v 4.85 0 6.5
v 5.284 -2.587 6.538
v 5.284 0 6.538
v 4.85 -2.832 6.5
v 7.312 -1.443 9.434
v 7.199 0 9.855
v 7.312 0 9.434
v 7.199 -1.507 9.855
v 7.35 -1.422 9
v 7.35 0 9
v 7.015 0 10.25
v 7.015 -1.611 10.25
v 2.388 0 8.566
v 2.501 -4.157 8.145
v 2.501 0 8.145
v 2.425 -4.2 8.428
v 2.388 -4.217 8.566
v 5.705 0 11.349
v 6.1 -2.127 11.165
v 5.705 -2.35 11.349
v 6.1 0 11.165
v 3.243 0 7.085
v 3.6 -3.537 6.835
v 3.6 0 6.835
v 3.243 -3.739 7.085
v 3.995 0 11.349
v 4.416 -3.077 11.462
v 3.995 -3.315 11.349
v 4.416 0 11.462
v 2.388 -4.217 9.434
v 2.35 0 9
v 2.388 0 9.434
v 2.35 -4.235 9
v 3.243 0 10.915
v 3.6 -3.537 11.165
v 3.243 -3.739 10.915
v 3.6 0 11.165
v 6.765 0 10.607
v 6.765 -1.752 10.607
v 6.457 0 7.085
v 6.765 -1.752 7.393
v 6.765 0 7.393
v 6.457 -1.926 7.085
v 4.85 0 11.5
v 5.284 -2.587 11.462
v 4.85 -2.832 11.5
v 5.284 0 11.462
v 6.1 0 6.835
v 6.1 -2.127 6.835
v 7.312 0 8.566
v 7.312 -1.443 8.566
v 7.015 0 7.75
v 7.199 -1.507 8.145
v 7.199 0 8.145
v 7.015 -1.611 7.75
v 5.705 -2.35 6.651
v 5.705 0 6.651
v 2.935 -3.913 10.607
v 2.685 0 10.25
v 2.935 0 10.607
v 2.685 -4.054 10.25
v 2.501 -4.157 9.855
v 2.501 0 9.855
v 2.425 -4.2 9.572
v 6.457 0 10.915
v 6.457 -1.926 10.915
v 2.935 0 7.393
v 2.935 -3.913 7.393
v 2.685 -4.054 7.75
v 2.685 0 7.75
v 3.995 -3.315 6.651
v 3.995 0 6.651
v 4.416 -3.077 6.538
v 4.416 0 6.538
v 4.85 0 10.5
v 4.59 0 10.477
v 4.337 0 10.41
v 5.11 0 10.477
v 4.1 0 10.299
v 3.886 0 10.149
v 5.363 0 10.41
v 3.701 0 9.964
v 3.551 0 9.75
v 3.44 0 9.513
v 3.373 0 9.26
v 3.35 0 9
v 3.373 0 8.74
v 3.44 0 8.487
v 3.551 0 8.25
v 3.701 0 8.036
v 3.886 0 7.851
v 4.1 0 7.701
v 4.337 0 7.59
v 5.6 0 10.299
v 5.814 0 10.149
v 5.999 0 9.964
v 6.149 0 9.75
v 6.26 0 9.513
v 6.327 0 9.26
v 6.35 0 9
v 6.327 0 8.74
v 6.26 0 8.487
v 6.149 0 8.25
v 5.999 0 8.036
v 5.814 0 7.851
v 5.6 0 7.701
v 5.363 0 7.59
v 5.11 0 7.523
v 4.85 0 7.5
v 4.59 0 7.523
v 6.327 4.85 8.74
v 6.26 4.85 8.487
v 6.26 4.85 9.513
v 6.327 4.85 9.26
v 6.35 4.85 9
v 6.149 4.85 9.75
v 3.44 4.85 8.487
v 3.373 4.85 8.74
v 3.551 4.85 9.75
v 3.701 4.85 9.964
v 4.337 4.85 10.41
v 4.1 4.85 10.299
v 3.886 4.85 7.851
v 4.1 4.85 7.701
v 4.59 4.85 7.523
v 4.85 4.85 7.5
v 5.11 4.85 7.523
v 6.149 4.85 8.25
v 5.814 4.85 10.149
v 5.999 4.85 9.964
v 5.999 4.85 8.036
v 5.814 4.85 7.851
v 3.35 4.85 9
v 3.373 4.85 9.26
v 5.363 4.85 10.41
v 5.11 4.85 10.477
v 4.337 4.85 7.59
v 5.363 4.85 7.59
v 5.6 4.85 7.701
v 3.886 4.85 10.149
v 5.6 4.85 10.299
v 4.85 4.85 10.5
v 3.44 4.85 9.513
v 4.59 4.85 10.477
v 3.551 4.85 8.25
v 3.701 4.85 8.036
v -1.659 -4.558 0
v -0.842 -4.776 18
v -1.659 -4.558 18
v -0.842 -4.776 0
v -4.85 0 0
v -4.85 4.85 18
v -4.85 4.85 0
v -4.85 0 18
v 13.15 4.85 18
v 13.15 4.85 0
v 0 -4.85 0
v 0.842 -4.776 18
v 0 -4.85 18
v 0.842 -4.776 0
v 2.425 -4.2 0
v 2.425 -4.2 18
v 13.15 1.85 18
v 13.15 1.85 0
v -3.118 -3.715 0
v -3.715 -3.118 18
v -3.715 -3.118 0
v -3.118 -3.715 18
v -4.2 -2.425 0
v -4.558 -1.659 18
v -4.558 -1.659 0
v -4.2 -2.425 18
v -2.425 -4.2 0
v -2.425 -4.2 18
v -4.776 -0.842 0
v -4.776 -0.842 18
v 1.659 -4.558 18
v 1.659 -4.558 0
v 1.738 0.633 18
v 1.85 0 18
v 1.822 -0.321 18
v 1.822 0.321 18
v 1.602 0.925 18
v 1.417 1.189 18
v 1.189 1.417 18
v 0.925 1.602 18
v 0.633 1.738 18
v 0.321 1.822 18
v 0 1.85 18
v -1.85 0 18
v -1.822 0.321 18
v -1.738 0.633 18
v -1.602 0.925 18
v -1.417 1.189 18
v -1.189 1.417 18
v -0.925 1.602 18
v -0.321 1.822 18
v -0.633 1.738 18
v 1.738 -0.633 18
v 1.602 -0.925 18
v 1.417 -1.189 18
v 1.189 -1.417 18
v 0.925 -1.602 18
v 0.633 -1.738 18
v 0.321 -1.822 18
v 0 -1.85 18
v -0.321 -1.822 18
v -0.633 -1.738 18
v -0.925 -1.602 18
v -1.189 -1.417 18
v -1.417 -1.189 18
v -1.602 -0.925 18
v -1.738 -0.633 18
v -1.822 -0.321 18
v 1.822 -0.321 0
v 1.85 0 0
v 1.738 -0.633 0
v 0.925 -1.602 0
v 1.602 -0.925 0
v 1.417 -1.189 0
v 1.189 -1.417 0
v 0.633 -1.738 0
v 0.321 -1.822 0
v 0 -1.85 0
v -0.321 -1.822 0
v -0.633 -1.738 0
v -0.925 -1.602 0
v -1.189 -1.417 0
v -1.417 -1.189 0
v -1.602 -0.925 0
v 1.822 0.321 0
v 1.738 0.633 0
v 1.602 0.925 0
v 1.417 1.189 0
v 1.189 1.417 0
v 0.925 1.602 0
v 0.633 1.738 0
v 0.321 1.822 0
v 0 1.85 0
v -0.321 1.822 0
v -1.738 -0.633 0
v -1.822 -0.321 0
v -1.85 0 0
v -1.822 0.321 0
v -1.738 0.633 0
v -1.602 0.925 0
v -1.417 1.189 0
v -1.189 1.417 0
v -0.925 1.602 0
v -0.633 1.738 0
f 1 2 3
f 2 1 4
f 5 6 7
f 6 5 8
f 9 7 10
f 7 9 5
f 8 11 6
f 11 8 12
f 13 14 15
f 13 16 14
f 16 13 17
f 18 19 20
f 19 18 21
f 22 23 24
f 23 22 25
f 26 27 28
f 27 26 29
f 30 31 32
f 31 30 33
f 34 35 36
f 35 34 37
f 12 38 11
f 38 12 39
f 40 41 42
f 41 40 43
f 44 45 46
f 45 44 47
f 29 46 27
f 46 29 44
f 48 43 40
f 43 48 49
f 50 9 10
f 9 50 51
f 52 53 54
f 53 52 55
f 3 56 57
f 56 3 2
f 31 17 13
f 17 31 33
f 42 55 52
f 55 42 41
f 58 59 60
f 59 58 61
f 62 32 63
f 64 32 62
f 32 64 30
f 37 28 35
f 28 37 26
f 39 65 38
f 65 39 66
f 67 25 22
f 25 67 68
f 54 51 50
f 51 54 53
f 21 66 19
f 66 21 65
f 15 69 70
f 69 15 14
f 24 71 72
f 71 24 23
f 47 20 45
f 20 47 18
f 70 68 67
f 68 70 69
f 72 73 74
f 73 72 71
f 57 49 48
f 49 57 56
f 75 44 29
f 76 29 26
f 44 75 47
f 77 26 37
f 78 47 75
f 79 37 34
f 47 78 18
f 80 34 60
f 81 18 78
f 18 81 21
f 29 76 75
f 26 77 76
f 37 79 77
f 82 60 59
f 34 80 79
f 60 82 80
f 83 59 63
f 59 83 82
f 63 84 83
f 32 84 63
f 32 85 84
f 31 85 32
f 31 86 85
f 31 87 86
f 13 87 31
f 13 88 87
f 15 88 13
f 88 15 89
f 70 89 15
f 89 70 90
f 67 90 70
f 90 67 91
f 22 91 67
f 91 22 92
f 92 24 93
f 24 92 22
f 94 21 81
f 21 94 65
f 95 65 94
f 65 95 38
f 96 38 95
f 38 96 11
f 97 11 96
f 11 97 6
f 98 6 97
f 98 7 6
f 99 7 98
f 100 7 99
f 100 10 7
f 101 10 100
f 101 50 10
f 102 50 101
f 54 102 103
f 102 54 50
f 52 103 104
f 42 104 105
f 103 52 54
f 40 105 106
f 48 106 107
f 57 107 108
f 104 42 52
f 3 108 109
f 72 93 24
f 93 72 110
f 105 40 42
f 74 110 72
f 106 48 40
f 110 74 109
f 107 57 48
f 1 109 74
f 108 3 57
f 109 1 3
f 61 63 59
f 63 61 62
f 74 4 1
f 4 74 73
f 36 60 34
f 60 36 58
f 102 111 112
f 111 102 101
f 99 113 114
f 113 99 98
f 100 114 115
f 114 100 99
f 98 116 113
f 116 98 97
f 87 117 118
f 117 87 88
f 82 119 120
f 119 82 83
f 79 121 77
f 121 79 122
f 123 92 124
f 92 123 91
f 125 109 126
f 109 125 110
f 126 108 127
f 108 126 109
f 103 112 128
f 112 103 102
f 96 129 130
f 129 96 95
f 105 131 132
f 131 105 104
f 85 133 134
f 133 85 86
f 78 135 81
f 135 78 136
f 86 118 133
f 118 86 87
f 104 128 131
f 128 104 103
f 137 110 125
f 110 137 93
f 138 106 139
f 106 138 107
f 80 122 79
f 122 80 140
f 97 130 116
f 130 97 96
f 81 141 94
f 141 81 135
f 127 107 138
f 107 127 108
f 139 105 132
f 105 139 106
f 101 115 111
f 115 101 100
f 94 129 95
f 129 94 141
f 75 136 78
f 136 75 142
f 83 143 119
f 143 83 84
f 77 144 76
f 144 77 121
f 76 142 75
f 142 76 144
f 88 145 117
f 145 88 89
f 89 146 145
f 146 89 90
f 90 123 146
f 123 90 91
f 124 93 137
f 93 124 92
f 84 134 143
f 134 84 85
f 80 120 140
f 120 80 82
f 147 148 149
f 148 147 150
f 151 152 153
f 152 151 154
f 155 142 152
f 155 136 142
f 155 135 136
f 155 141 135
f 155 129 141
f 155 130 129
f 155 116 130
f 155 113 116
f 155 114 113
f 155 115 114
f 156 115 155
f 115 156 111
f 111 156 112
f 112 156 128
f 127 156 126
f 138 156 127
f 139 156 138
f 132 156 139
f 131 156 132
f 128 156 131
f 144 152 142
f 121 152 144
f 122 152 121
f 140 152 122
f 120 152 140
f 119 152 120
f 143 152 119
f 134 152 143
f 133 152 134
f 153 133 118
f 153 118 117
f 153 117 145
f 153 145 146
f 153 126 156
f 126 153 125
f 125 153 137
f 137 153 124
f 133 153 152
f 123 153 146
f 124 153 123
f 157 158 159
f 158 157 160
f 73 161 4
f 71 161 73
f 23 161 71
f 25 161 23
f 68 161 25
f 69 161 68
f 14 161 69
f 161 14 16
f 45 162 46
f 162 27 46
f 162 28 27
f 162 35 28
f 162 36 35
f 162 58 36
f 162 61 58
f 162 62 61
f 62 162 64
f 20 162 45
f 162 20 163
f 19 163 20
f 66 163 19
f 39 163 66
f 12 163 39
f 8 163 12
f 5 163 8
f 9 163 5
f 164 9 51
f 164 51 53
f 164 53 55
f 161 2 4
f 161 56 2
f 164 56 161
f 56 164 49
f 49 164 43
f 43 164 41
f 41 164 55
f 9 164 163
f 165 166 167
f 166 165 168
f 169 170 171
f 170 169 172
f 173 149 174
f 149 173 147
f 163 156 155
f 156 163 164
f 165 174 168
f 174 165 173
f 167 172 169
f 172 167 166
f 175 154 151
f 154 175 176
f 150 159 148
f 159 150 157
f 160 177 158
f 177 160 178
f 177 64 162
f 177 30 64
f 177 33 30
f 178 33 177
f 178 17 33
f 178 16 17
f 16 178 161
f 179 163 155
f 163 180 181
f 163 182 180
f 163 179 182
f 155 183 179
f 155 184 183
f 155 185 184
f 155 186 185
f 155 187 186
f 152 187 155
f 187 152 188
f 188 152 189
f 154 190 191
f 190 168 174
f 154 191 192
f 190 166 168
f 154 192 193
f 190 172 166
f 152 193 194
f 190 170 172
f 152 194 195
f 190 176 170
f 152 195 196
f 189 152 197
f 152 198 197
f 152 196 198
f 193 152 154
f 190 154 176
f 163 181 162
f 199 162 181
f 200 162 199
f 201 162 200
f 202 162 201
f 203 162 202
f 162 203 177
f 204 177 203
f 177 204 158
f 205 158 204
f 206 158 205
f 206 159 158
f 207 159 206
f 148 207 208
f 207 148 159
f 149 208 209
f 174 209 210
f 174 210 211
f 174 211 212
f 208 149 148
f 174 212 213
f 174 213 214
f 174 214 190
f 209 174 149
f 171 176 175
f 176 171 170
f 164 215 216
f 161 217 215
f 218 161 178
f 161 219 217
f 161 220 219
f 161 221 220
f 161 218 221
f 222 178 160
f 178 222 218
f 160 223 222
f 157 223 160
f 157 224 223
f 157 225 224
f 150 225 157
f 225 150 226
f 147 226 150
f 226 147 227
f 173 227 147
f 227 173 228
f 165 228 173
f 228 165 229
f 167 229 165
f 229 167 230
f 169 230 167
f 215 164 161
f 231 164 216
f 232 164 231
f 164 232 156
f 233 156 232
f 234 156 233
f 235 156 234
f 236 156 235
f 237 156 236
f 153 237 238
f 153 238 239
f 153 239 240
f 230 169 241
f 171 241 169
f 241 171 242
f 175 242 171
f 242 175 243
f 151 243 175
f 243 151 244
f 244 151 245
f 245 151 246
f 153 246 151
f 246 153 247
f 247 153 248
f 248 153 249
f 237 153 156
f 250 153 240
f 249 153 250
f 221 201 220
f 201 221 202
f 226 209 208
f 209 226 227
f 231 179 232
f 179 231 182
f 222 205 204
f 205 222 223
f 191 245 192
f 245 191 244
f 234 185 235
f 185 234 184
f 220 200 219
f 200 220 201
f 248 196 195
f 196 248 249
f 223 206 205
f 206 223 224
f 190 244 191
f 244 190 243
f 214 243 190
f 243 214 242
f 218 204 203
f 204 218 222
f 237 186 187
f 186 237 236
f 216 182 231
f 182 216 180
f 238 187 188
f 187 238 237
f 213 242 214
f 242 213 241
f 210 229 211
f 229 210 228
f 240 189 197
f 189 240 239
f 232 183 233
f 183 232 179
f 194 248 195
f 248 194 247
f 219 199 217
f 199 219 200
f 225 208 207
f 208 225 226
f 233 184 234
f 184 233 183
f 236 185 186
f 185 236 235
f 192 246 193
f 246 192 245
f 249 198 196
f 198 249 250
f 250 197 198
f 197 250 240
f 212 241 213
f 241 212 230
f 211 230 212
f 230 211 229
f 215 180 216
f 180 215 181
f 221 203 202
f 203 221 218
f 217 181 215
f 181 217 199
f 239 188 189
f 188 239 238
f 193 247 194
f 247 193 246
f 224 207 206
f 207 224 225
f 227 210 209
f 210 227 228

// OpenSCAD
$fn = 36;

d = 3.5;
ri = (d + 0.2)/2;
r = ri + 3;
h = 18;

r2 = 2.5;
ri2 =1.5;

difference() {
    hull() {
        translate([-r, ri, 0]) cube([h, r - ri, h]);
        cylinder(h, r, r);
    }
    translate([0, 0, -1]) cylinder(h + 2, ri, ri);
    translate([r, h/2, h/2]) rotate([90, 0, 0]) union() {
        translate([0, 0, h/2]) cylinder(h/2 + 1, r2, r2);
        cylinder(h + 2, ri2, ri2);
    }
}
